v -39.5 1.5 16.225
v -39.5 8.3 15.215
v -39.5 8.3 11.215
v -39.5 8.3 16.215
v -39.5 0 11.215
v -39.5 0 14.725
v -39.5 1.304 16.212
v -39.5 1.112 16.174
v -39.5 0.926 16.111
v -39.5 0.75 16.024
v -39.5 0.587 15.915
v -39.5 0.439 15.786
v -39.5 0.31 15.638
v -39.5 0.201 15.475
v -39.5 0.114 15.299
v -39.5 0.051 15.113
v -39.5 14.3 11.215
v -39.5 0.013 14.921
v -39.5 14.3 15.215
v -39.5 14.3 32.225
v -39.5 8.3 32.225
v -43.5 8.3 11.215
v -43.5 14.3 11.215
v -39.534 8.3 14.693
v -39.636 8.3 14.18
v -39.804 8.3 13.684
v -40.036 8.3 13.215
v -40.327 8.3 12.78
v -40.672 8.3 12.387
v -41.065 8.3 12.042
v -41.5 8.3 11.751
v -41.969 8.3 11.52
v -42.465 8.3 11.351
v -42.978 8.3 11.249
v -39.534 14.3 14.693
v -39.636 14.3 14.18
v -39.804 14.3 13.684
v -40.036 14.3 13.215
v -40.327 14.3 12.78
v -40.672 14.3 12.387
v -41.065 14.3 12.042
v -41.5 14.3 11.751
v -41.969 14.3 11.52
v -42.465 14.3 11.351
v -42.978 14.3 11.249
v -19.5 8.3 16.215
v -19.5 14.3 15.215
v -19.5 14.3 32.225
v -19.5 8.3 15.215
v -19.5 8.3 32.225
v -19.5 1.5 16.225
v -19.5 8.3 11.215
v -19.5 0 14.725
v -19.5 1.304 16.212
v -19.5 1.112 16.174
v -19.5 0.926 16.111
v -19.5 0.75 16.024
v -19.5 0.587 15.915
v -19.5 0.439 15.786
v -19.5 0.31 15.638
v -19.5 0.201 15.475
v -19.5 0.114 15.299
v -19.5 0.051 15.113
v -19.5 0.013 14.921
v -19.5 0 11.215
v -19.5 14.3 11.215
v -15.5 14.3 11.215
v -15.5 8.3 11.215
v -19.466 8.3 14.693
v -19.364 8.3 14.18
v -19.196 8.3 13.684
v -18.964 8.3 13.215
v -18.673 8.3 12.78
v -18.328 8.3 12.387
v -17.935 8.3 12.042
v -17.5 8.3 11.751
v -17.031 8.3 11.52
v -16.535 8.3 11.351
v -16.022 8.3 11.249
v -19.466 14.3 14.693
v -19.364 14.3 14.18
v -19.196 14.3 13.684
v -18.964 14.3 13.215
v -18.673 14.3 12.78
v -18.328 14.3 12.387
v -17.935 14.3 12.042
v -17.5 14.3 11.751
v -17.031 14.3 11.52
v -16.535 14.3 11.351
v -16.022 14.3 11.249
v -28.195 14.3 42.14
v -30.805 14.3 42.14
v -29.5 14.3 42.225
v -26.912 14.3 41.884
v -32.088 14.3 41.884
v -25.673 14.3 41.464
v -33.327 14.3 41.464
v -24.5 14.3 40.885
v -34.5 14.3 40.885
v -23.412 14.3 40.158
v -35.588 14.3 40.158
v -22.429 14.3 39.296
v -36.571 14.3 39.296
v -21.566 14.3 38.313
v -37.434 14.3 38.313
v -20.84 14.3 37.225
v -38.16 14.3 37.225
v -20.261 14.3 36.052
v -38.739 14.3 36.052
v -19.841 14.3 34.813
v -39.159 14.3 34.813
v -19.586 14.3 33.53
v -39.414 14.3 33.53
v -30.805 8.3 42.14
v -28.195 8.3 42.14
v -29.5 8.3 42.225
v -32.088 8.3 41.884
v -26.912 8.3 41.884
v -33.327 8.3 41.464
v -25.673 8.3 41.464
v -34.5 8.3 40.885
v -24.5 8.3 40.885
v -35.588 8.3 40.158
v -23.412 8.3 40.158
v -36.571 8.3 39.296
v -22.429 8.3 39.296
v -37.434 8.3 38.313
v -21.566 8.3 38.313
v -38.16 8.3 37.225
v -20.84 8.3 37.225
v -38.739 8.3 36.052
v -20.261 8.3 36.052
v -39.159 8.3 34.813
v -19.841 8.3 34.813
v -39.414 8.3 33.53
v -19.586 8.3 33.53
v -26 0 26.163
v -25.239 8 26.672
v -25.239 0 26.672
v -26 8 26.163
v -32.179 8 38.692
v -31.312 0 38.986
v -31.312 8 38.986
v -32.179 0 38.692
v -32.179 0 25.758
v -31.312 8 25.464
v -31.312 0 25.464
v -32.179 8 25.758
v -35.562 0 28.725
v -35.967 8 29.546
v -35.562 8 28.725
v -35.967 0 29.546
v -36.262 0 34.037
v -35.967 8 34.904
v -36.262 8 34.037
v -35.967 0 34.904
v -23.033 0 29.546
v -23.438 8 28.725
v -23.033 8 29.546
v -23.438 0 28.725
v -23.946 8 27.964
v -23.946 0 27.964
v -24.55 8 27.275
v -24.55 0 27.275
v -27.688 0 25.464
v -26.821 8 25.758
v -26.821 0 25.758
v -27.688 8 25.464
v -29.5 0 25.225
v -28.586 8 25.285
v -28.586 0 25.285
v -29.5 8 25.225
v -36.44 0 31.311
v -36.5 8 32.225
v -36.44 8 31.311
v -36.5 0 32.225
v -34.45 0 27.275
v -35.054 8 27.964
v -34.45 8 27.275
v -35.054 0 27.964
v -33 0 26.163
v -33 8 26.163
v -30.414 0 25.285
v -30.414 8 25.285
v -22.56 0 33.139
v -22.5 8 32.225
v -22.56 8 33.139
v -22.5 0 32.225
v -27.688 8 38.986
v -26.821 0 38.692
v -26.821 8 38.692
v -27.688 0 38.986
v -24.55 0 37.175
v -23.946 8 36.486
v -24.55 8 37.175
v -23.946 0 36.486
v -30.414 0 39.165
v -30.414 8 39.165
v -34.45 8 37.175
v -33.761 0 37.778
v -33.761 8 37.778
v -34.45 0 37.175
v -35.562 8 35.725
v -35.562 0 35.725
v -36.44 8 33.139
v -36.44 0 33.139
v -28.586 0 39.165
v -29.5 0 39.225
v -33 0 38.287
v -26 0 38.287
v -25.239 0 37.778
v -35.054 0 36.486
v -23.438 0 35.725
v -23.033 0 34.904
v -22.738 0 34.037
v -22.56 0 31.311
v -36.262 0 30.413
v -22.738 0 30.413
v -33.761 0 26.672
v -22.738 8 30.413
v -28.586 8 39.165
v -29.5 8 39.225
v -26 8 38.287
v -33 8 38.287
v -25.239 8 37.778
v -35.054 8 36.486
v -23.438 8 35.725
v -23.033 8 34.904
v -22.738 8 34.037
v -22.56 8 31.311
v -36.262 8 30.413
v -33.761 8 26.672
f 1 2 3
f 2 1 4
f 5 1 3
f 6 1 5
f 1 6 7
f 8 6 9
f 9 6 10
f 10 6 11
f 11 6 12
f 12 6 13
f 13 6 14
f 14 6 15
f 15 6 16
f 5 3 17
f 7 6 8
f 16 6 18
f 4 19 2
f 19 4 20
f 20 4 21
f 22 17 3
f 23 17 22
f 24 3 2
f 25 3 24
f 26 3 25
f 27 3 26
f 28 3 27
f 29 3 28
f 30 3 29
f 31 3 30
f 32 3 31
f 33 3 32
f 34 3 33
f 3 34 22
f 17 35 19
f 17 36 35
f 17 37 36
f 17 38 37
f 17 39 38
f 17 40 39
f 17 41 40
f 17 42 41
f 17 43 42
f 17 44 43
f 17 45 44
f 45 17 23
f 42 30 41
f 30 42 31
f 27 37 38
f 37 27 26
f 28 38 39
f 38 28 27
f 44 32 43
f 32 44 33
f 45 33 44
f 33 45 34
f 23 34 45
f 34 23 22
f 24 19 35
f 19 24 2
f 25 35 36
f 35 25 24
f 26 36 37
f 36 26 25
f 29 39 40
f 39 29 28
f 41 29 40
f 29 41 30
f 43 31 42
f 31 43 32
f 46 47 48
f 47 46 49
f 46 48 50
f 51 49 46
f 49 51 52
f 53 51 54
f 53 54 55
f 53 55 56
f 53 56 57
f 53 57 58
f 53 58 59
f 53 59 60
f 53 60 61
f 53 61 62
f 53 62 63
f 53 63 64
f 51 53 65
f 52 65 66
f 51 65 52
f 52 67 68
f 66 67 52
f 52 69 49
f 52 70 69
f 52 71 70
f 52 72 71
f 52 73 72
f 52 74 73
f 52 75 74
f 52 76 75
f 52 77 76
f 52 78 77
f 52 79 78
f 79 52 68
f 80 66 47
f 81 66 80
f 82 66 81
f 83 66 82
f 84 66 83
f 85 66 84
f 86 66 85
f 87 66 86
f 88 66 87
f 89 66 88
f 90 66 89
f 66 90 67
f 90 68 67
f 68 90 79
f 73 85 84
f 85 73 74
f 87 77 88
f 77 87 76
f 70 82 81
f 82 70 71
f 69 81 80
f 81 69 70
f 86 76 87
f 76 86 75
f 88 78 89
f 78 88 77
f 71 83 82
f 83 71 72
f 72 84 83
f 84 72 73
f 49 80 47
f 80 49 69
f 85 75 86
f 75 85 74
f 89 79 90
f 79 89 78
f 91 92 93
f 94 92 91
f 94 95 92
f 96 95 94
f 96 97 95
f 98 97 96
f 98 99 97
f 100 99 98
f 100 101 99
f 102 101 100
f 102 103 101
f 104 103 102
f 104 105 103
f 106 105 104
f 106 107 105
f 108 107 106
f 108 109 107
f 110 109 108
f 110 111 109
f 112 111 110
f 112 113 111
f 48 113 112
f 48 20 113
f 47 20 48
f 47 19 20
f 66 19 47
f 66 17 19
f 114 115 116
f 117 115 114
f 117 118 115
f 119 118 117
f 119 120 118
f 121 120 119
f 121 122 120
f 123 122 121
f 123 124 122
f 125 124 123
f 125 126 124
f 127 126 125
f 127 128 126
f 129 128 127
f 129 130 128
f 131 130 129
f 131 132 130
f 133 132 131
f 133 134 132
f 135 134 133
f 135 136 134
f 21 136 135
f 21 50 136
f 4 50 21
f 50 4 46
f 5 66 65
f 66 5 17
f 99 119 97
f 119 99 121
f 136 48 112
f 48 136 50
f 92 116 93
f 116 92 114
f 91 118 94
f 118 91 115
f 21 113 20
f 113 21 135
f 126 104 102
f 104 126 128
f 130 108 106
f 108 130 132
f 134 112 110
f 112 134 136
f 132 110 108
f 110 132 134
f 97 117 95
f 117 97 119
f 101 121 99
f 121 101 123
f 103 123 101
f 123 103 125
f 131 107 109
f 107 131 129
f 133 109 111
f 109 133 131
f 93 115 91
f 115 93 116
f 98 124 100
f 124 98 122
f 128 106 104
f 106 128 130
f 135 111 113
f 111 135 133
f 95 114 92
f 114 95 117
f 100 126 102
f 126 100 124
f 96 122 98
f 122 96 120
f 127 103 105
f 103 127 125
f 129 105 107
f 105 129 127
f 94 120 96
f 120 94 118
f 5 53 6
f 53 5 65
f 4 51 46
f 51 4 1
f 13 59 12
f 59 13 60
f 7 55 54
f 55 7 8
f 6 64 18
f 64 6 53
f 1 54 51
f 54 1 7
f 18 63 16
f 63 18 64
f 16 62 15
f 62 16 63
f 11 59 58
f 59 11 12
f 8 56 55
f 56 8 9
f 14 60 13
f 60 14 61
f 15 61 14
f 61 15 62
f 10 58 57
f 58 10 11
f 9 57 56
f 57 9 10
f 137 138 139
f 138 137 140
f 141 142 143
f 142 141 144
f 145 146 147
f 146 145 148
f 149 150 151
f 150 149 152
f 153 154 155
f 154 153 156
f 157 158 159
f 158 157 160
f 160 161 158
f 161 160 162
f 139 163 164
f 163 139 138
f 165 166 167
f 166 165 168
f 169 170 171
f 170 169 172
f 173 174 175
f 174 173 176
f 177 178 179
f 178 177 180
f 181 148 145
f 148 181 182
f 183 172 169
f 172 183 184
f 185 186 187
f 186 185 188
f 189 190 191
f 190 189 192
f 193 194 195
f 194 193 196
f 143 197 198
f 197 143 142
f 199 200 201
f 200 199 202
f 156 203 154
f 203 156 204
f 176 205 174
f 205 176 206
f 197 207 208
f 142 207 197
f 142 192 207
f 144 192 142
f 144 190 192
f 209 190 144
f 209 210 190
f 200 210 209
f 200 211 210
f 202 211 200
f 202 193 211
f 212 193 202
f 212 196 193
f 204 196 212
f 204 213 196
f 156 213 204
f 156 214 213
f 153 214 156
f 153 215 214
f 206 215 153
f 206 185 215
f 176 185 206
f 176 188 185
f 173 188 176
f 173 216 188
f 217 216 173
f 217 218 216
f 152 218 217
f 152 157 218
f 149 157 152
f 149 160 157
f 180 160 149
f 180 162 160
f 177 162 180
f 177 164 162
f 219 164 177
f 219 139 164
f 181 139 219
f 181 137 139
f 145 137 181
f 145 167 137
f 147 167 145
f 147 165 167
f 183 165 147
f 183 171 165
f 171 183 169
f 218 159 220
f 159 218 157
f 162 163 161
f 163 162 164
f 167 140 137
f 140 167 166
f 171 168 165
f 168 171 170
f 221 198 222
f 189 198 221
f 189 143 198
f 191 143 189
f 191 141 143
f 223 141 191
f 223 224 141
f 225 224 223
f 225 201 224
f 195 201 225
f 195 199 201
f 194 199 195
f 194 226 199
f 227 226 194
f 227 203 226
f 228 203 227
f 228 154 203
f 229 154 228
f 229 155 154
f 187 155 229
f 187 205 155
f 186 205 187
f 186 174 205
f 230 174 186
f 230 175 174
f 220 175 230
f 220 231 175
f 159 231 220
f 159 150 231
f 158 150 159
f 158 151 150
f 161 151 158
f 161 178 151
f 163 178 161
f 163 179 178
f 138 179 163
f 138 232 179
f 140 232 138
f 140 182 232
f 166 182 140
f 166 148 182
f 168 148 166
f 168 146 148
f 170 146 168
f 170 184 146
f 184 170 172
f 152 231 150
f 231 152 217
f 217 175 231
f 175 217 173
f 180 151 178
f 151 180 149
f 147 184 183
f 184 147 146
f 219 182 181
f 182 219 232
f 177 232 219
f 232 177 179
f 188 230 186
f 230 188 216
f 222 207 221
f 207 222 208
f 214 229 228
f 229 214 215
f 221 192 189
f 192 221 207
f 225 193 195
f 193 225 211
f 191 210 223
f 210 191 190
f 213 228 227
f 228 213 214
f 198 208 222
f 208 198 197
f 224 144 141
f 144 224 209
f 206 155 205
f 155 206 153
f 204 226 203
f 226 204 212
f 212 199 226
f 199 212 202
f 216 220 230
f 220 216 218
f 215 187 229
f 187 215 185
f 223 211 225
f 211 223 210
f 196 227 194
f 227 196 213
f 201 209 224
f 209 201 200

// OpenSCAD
// Lab Rax generic equipment tray + faceplate (wizard template).
// Faceplate derived from the Pi4 baseline; rack holes follow the four-corner layout of the user-supplied
// 1U blank plate (faceplate_mounting.json): EVERY rack unit gets 4 holes, never a single centre pair.
// The wizard appends override assignments at the end of this file.
// PROPOSED, UNVALIDATED: printed fit, strength and rack clearance are UNKNOWN.
$fn=48;
part="assembly";            // assembly, faceplate, tray, combined, rear_bracket
// Device envelope (mm). Origin of hole coordinates = device front-left corner, seen from above.
dev_w=85; dev_d=56; dev_h=20;
feet=[];                     // [[x,y,w,d,h],...] underside feet, device frame front-left origin
holes=[];                   // [[x,y],...] mounting hole centres
hole_d=2.7;                 // device mounting hole diameter
device_mount="inserts";     // inserts, pegs, clips, straps
standoff=6;                 // device lift above tray floor
insert_pilot=3.2;           // pilot for heat-set insert (inserts mode)
board_t=1.6;                // board/flange thickness (pegs, clips)
joint="screw";              // screw, single ("snap" retired 2026-10-19: too brittle; kept as history)
u=1;                        // faceplate height in rack units
keystones=[];               // [x,...] keystone centres on faceplate (X=0 centre)
// Keystone v2 (2026-10-19, now the fallback; see ks_style): re-modelled from measurements of Brian's reference keystone frame
// (14.5 x 16 opening was too narrow when printed). Opening 14.8 x 16.6 through the plate, plus a rear collar
// 19.8 x 27.85 reaching 9.2 mm behind the front face (bottom lip to 10.4) that carries the latch ramp and catches.
ks_w=14.8; ks_h=16.6;       // front opening
ks_ow=19.8; ks_ob=11.9; ks_ot=15.95; ks_od=9.2; ks_lip=10.4;  // collar width, below/above opening centre, depth
ports=[];                   // [[x,z,w,h,r],...] faceplate cut-outs, z from slot bottom, r=corner radius
front_gap=12;               // device front to faceplate rear face
margin=8;                   // tray border around device
dev_off_x=0;                // device left/right offset, mm from centred (+ = right, seen from the front)
dev_off_y=0;                // device front/back offset, mm added to front_gap (+ = toward the rear)
dev_rot=0;                  // device rotation seen from above: 0, 90, 180, 270 (90/270 swap width and depth)
rear_support=false;         // heavy/deep equipment: tray runs to the rear posts and screws to a rear bracket
coupon=[];                  // test coupon: [x0,x1,ymax] keeps only that slice of the part

// 4 mm plate (owner default 2026-10-18). Corner radius is limited by the four-corner holes:
// the reference holes sit 1.6 mm from the top/bottom edge, so larger corners would cut into them.
rack_pitch=44.45; plate_gap=0.05; legacy_slot_offset=1.225;
plate_bottom=plate_gap/2; plate_center=u*rack_pitch/2;
plate_w=252; plate_t=4; plate_r=2.5; plate_h=u*rack_pitch-plate_gap;
hole_x=118.2625; hole_dz=15.902;   // each U: holes at its centre ±hole_dz (6.323 / 38.127 above the slot bottom)
rack_depth=240;             // Lab Rax frame depth (front of front posts to back of rear posts)
nudge=0;                    // render-repair only: tiny size offset applied when OpenSCAD 2021 emits a sliver
sleeve=device_mount=="sleeve";
// PROPOSED sleeve defaults (mm); independent design, fit and strength UNKNOWN.
sl_side=0.5; sl_top=0.3; sl_wall=6; sl_lip_w=10; sl_lip_t=1.5; sl_band=1.5; sl_stop_t=4; sl_stop_h=6;
foot_clearance=0.5; foot_extra_depth=0.3; foot_min_floor=0.8; foot_lip_t=3.0;
tray_t=3; floor_z=(device_mount=="flat"||sleeve)?0.5:7+legacy_slot_offset; tray_z=floor_z; // @flat-floor
assert(dev_rot==0||dev_rot==90||dev_rot==180||dev_rot==270,"dev_rot must be 0, 90, 180 or 270");
// Device footprint on the tray after rotation; the tray stays centred and grows to keep the margin.
fp_w=(dev_rot==90||dev_rot==270)?dev_d:dev_w; fp_d=(dev_rot==90||dev_rot==270)?dev_w:dev_d;
rack_inner_w=208; side_clear=2; max_tray=rack_inner_w-2*side_clear; // PROPOSED nominal opening / side clearance
tray_w=2*(abs(dev_off_x)+fp_w/2+(sleeve?max(margin,sl_side+sl_wall):margin)); tray_d=rear_support?rack_depth:sleeve?-plate_t+fp_d+margin:dev_off_y+fp_d+front_gap+margin;
tray_x=-tray_w/2; tray_y=0;
 // @flat-begin
assert(device_mount!="flat"||front_gap+dev_off_y>=6.2,"Flat corner stops need a front gap of at least 6.2 mm");
assert(device_mount!="flat"||joint!="screw"||front_gap+dev_off_y>=11.5,"Flat device must clear the front screw joint (front gap >= 11.5 mm)");
assert(device_mount!="flat"||!rear_support||front_gap+dev_off_y+fp_d<=rack_depth-11.5,"Flat device must clear the rear screw joint (rear gap >= 11.5 mm)");
 // @flat-end
dev_x=-fp_w/2+dev_off_x; dev_y=sleeve?-plate_t:front_gap+dev_off_y; floor_top=tray_z+tray_t;
assert(tray_w<=max_tray,str("This tray is ",tray_w," mm wide but the rack opening allows ",max_tray," mm (",rack_inner_w," mm minus ",side_clear," mm each side). Try Rotate 90 degrees, or reduce dev_off_x."));
assert(sleeve||dev_y>=0,str("Device moved into the faceplate: dev_off_y must be at least ",-front_gap));
assert(!rear_support||dev_y+fp_d+margin<=rack_depth,"Device moved past the rear posts; reduce dev_off_y");
// Device-frame point [x,y] (front-left origin, unrotated) -> footprint offset from [dev_x,dev_y].
function dp(p)=dev_rot==90?[dev_d-p[1],p[0]]:dev_rot==180?[dev_w-p[0],dev_d-p[1]]:dev_rot==270?[p[1],dev_w-p[0]]:p;
foot_h=(device_mount=="flat"||sleeve)?max([0,for(f=feet)f[4]]):0; foot_depth=foot_h>0?foot_h+foot_extra_depth:0;
sl_half=fp_w/2+sl_side; sl_bottom=floor_top; sl_window_top=sl_bottom+dev_h-foot_h+sl_top;  // case rests on the floor top; feet hang in pockets foot_extra_depth deeper
sl_lip=sl_window_top+(foot_h>0?foot_lip_t:sl_lip_t)<=u*rack_pitch?(foot_h>0?foot_lip_t:sl_lip_t):0;
sl_rear=dev_y+fp_d;
sl_joints=[dev_off_x-sl_half-sl_wall/2,dev_off_x+sl_half+sl_wall/2];
sl_joint_z=[sl_bottom+3,sl_window_top-3];
assert(!sleeve||fp_d/4-plate_t-6>=8,"Sleeve depth must be at least 72 mm to keep strap slots clear of the front joint");
assert(!sleeve||sl_bottom-plate_bottom>=sl_band&&u*rack_pitch-plate_bottom-sl_window_top>=sl_band,str("Too tall for a flush window in ",u,"U; choose ",u+1,"U"));
assert(!sleeve||!rear_support||sl_rear+sl_stop_t<=rack_depth-11.5,"Sleeve rear stop must clear rear joint by 11.5 mm");
assert(!sleeve||joint!="screw"||sl_window_top-sl_bottom>=10,"Sleeve screw joint needs a window at least 10 mm tall");
jx=min(40,tray_w/2-12); joint_x=[-jx,jx];
tongue_w=12; tongue_depth=7; tongue_h=3; tongue_z=tray_z+3.5;
slot_clear=0.3; boss_d=14; m3_clear=6.6; joint_pilot=7.6;  // HP4-M6-B: rack M6 insert bore and clearance

// @m6-begin
// M6 bracket hardware (Brian, 2026-10-28; reproduces the approved HDT-M6-A drive tray). Opt-in m6_joint: equipment.py
// switches it on (front_gap 15.5, boss 14, insert bore 7.6 = the rack posts' M6 insert holes, 6.6 clearance) and kept
// only then. Joints: inner pair + one at each tray edge (edge pair only on narrow trays); edge joints 2 screws, inner the
// upper one. Tabs: rounded-top 20 x 6 plate with the tongue-slot foot, 4 mm floor coves, 11.5 x 3.5 counterbore so the
// M6 x 8 button head sits below the rear face. PROPOSED — UNVALIDATED: fit and strength UNKNOWN.
function jzx(x)=[24];  // HP4-M6-B: one screw at Z=32.225; boss top 39.225, tab top 42.225
side_wall_t=2.5; side_wall_h=15; up_t=6; cb_d=11.5; cb_depth=3.5; tab_w=20; tab_foot_h=5; fil_r=4; floor_r=6; wall_r=6;
module m6_tray_joint_add(){
 ft=tray_z+tray_t;  // floor top
 for(x=joint_x)intersection(){
  union(){
   translate([0,8.3+up_t,0])rotate([90,0,0])linear_extrude(up_t)hull(){translate([x-tab_w/2,ft-0.01])square([tab_w,1]);translate([x,tray_z+max(jzx(x))])circle(d=tab_w);}
   hull(){translate([x-tab_w/2,0,ft-0.01])cube([tab_w,8.3+up_t,1]);translate([x-tab_w/2,8.3,ft-0.01])cube([tab_w,0.01,tab_foot_h]);
         translate([x-tab_w/2,1.5,ft+tab_foot_h-1.5])rotate([0,90,0])cylinder(r=1.5,h=tab_w);translate([x-tab_w/2,0,ft-0.01])cube([tab_w,0.01,tab_foot_h-1.5]);}
   for(sd=[-1,1])translate([x+sd*tab_w/2-(sd<0?fil_r:0),8.3,ft-0.01])difference(){cube([fil_r,up_t,fil_r]);translate([sd<0?0:fil_r,-0.1,fil_r])rotate([-90,0,0])cylinder(r=fil_r,h=up_t+0.2);}
  }
  translate([tray_x0,-1,0])cube([tray_x1-tray_x0,tray_d+2,60]);  // unchanged asymmetric floor bounds
 }
 // HP4-M6-B: edge walls omitted to preserve the keystone gap and wide cable lane.
}
module m6_tray_joint_cut(){for(x=joint_x,zz=jzx(x)){translate([x,8.3+up_t+0.1,tray_z+zz])rotate([90,0,0])cylinder(d=m3_clear,h=up_t+9);
 translate([x,8.3+up_t+0.1,tray_z+zz])rotate([90,0,0])cylinder(d=cb_d,h=cb_depth+0.1);}}
// @m6-end

module capsule2d(len=10,diam=7){hull(){translate([-(len-diam)/2,0])circle(d=diam);translate([(len-diam)/2,0])circle(d=diam);}}
module rrect(w,h,r){rr=min(r,w/2-0.01,h/2-0.01);if(rr<=0)square([w,h],center=true);else offset(r=rr)square([w-2*rr,h-2*rr],center=true);}
// Mirror front-of-tray features to the rear (about the rack's mid-depth).
module to_rear(){translate([0,rack_depth/2,0])mirror([0,1,0])translate([0,-rack_depth/2,0])children();}

// Faceplate outline seen from the front: 2D X = rack X, 2D Y = height Z.
// rear=true cuts the larger keystone pocket; plain=true leaves out keystones/ports (rear bracket).
module plate2d(rear=false,plain=false){
 difference(){
  hull()for(sx=[-1,1],sz=[-1,1])translate([sx*(plate_w/2-plate_r),plate_center+sz*(plate_h/2-plate_r)])circle(r=plate_r+nudge);
  for(i=[0:u-1],dz=[-hole_dz,hole_dz],x=[-hole_x,hole_x])translate([x,i*rack_pitch+rack_pitch/2+dz])capsule2d();
  if(!plain){
   if(sleeve)translate([dev_off_x,(sl_bottom+sl_window_top)/2])square([2*sl_half,sl_window_top-sl_bottom],center=true);
   for(p=ports)translate([p[0],p[1]])rrect(p[2],p[3],p[4]);
  }
 }
}
// Plate between y=y0 (front) and y0+t, built from the 2D outline (cleaner meshes than 3D cuts in OpenSCAD 2021).
module plate_layer(y0,t,rear=false,plain=false){translate([0,y0+t,0])rotate([90,0,0])linear_extrude(height=t)plate2d(rear,plain);}

module plate_joint_add(rear=false){
 if(joint=="screw"&&(!sleeve||rear)){
  for(x=joint_x)translate([x-tongue_w/2,0,tongue_z])cube([tongue_w,tongue_depth,tongue_h]);
  for(x=joint_x,zz=jzx(x))translate([x,0,tray_z+zz])rotate([-90,0,0])cylinder(d=boss_d,h=8);
 }
 if(joint=="snap") for(x=joint_x){
  // Cantilever arm under the tray floor; barb snaps up into a floor window.
  translate([x-4,0,tray_z-2])cube([8,16,2]);
  // Barb v2: square catch face toward the plate, ramp falling toward the rear so the tray, slid in
  // from the rear, cams the arm down until its window drops over the barb.
  translate([x-4,12,tray_z])hull(){cube([8,0.6,1.2]);cube([8,2.4,0.01]);}
 }
}
// Keystone collar behind the plate, and the jack-shaped cut through plate + collar.
// Profile in (d = depth behind front face, z from opening centre); X width is ks_w throughout.
module ks_collar(){for(x=keystones)translate([x-ks_ow/2,-plate_t,plate_center]){
 translate([0,0,-ks_ob])cube([ks_ow,ks_od,ks_ob+ks_ot]);
 translate([0,0,-ks_ob])cube([ks_ow,ks_lip,ks_ob-ks_h/2]);
}}
module ks_cut(){for(x=keystones)translate([x-ks_w/2,-plate_t,plate_center])rotate([90,0,90])linear_extrude(height=ks_w)
 polygon([[-1,-ks_h/2],[5.8,-ks_h/2],[5.8,-9.9],[9.2,-9.9],[9.2,-ks_h/2],[11,-ks_h/2],[11,11.6],[8.2,11.6],
          [8.2,ks_ot+1],[7.2,ks_ot+1],[7.2,13.6],[0.6,ks_h/2],[-1,ks_h/2]]);}
// Golden keystone (Brian, 2026-10-19): exact cross-sections of the keystone on Brian's SG108 faceplate, which fits
// perfectly in practice. Source: "10 inch shelf TP-Link SG108 Plus Keystone" by Goul (MakerWorld remix, BY-NC-SA),
// local/personal use only, never redistributed. Each band: [X from opening centre, width, polygons in source (Y, Z)]
// with source Y running down the plate (opening centre Y=25.09) and Z = depth (keystone face 0, plate back 4.08).
// The block replaces the plate within 21 x 33.5 mm around each keystone; front face sits 0.08 proud like the source.
ks_style="golden";          // golden (SG108 copy) or v2 (own measured rebuild, kept as fallback)
// Brian, 2026-10-19: the golden v3 print fit left/right well but had ~0.4 mm play up/down. ks_tight moves the
// bottom (hook-side) edge of the opening, its hook groove and lip up by this much; the latch side is unchanged.
ks_tight=0.2;  // Brian, 2026-10-19: v5 coupon (0.2) printed a perfect fit; v4 (0.4) was too tight.
KS_GOLD=[
  [-10.50,0.60,[[[45.500,4.080],[45.500,0.080],[38.691,0.080],[38.691,0.000],[7.251,0.000],[7.251,0.080],[1.000,0.080],[1.000,4.080],[1.071,4.080]]]],
  [-9.90,0.98,[[[9.143,4.080],[9.143,6.600],[9.205,7.147],[9.207,7.160],[9.226,7.216],[9.395,7.692],[9.679,8.145],[9.697,8.169],[10.075,8.546],[10.099,8.565],[10.551,8.848],[11.083,9.036],[11.643,9.100],[13.493,9.100],[14.293,9.900],[33.393,9.900],[33.893,10.400],[34.493,10.400],[35.054,10.336],[35.586,10.148],[36.038,9.865],[36.062,9.846],[36.439,9.469],[36.458,9.445],[36.742,8.992],[36.753,8.965],[36.930,8.460],[36.993,7.900],[36.993,4.080],[45.500,4.080],[45.500,0.080],[38.691,0.080],[38.691,0.000],[7.251,0.000],[7.251,0.080],[1.000,0.080],[1.000,4.080],[1.014,4.080]]]],
  [-8.92,1.52,[[[7.551,4.080],[7.551,2.250],[9.143,2.250],[9.143,6.600],[9.209,7.169],[9.367,7.620],[9.404,7.709],[9.658,8.114],[9.716,8.190],[9.755,8.229],[10.054,8.527],[10.130,8.586],[10.534,8.840],[10.623,8.876],[11.074,9.034],[11.643,9.100],[13.493,9.100],[14.293,9.900],[33.393,9.900],[33.893,10.400],[34.493,10.400],[35.063,10.334],[35.514,10.176],[35.603,10.140],[36.006,9.886],[36.083,9.827],[36.420,9.490],[36.479,9.414],[36.719,9.030],[36.737,9.000],[36.770,8.920],[36.927,8.469],[36.993,7.900],[36.993,2.250],[38.551,2.250],[38.551,4.080],[45.500,4.080],[45.500,0.080],[38.691,0.080],[38.691,0.000],[7.251,0.000],[7.251,0.080],[1.000,0.080],[1.000,4.080],[1.044,4.080]]]],
  [-7.40,14.80,[[[7.551,4.080],[7.551,2.250],[9.143,2.250],[9.143,6.600],[9.175,6.878],[9.229,7.247],[9.478,7.850],[9.876,8.368],[10.393,8.765],[10.996,9.015],[11.365,9.069],[11.643,9.100],[13.493,9.100],[13.493,8.100],[11.493,8.100],[11.493,7.200],[16.793,0.500],[16.793,0.000],[7.251,0.000],[7.251,0.080],[1.000,0.080],[1.000,4.080],[1.025,4.080]],[[45.500,4.080],[45.500,0.080],[38.691,0.080],[38.691,0.000],[33.393,0.000],[33.393,5.800],[34.993,5.800],[34.993,8.400],[33.393,8.400],[33.393,9.900],[33.893,10.400],[34.493,10.400],[34.771,10.369],[35.140,10.315],[35.743,10.065],[36.200,9.715],[36.261,9.668],[36.658,9.150],[36.908,8.547],[36.962,8.178],[36.993,7.900],[36.993,2.250],[38.551,2.250],[38.551,4.080],[42.555,4.080]]]],
  [7.40,2.50,[[[45.500,4.080],[45.500,0.080],[38.691,0.080],[38.691,0.000],[7.251,0.000],[7.251,0.080],[1.000,0.080],[1.000,4.080],[7.551,4.080],[7.551,2.250],[9.143,2.250],[9.143,6.600],[9.209,7.168],[9.370,7.630],[9.402,7.705],[9.662,8.120],[9.712,8.185],[9.927,8.400],[10.059,8.531],[10.124,8.582],[10.538,8.841],[10.614,8.873],[11.075,9.034],[11.643,9.100],[13.493,9.100],[14.293,9.900],[33.393,9.900],[33.893,10.400],[34.493,10.400],[35.062,10.335],[35.523,10.172],[35.599,10.141],[36.013,9.882],[36.078,9.831],[36.425,9.486],[36.474,9.420],[36.735,9.005],[36.767,8.930],[36.928,8.467],[36.993,7.900],[36.993,2.250],[38.551,2.250],[38.551,4.080],[42.599,4.080]]]],
  [9.90,0.60,[[[45.500,4.080],[45.500,0.080],[38.691,0.080],[38.691,0.000],[7.251,0.000],[7.251,0.080],[1.000,0.080],[1.000,4.080],[7.551,4.080],[7.551,2.250],[38.551,2.250],[38.551,4.080],[42.635,4.080]]]]
];
// Depths are shifted by -0.08 before polygon() and the 0.08 is added back in the 3D transform: OpenSCAD 2021 snaps 2D
// points to a 1/65536 mm grid, which put the plate-flush faces (Z 0.08 / 4.08) 0.0000134 mm off the plate and left a
// non-manifold sliver edge. Shifted, those faces sit at exactly 0 and 4.0 (on the grid); the shape is unchanged.
// The block is cut 0.1 mm oversize in height, then clipped in rack coordinates by the same box as ks_box_cut, so its
// top/bottom faces are the very same numbers as the plate opening (the transform alone landed them a hair off).
module ks_golden(){for(x=keystones)intersection(){
 translate([x,0,plate_center])multmatrix([[1,0,0,0],[0,0,1,-4],[0,-1,0,25.09],[0,0,0,1]])intersection(){
  union()for(b=KS_GOLD)translate([b[0],0,0])rotate([90,0,90])linear_extrude(height=b[1])for(pg=b[2])
   translate([b[1]>10&&min([for(q=pg)q[0]])>30?-ks_tight:0,0])polygon([for(q=pg)[q[0],q[1]-0.08]]);  // opening band, hook side
  translate([-10.5,25.09-18.6,-0.09])cube([21,33.7,10.42]);
 }
 translate([x-10.5,-plate_t-1,plate_center-15])cube([21,plate_t+16,33.5]);
}}
module ks_box_cut(){for(x=keystones)translate([x-10.5,-plate_t-0.01,plate_center-15])cube([21,plate_t+0.02,33.5]);}
module plate_joint_cut(rear=false){if(joint=="screw"&&(!sleeve||rear))for(x=joint_x,zz=jzx(x))translate([x,-0.1,tray_z+zz])rotate([-90,0,0])cylinder(d=joint_pilot,h=8.2);}

module faceplate(){
 union(){
  difference(){
   union(){
    plate_layer(-plate_t,plate_t);
    if(ks_style=="v2")ks_collar();
    plate_joint_add();
   }
   plate_joint_cut();
   hp4_plate_id();
   if(sleeve&&joint=="screw")for(x=sl_joints,z=sl_joint_z)translate([x,-plate_t-0.1,z])rotate([-90,0,0])cylinder(d=m3_clear,h=plate_t+0.2);
   if(ks_style=="v2")ks_cut(); else ks_box_cut();
  }
  if(ks_style!="v2")ks_golden();
 }
}
// Plain plate on the rear posts (mirror of the faceplate, no openings) that the tray's rear end screws/snaps to.
module rear_bracket(){to_rear()difference(){union(){plate_layer(-plate_t,plate_t,false,true);plate_joint_add(true);}plate_joint_cut(true);}}

module device_features_add(){
 if(sleeve){
  for(side=[-1,1]){
   x=side<0?dev_off_x-sl_half-sl_wall:dev_off_x+sl_half;
   translate([x,0,floor_top])cube([sl_wall,sl_rear,sl_window_top-floor_top]);
   if(sl_lip>0)translate([side<0?x:dev_off_x+sl_half-min(sl_lip_w,sl_half),0,sl_window_top])cube([sl_wall+min(sl_lip_w,sl_half),sl_rear,sl_lip]);
  }
  translate([dev_x,sl_rear,floor_top])cube([fp_w,sl_stop_t,min(sl_stop_h,dev_h-foot_h)]);
 }

 // @flat-begin
 if(device_mount=="flat"){
  // Corner stops outside the footprint, with 0.2 mm nominal clearance. Retention UNKNOWN.
  for(x=[dev_x-6.2,dev_x+fp_w+0.2],y=[dev_y,dev_y+fp_d-min(6,fp_d)])
   translate([x,y,floor_top])cube([6,min(6,fp_d),min(6,dev_h-foot_h)]);
  for(x=[dev_x,dev_x+fp_w-min(6,fp_w)],y=[dev_y-6.2,dev_y+fp_d+0.2])
   translate([x,y,floor_top])cube([min(6,fp_w),6,min(6,dev_h-foot_h)]);
 }
 // @flat-end
 if(device_mount=="inserts")for(h=[for(q=holes)dp(q)])translate([dev_x+h[0],dev_y+h[1],floor_top])cylinder(d=max(insert_pilot+3.5,7),h=standoff);
 if(device_mount=="pegs")for(h=[for(q=holes)dp(q)])translate([dev_x+h[0],dev_y+h[1],floor_top]){
  cylinder(d=hole_d+3,h=standoff);
  translate([0,0,standoff])cylinder(d=hole_d-0.3,h=board_t+0.8);
  translate([0,0,standoff+board_t+0.8])cylinder(d1=hole_d-0.3,d2=hole_d-1,h=0.8);
 }
 if(device_mount=="clips"){
  // Support ledges at the four corners plus a flexing clip on each side.
  for(x=[dev_x-1,dev_x+fp_w-5],y=[dev_y-1,dev_y+fp_d-5])translate([x,y,floor_top])cube([6,6,standoff]);
  for(s=[-1,1])translate([s>0?dev_x+fp_w+0.2:dev_x-2.2,dev_y+fp_d/2-5,floor_top]){
   cube([2,10,standoff+board_t+2.5]);
   translate([s>0?-1.2:2,0,standoff+board_t+0.2])hull(){cube([1.2,10,1.6]);translate([s>0?1.2:0,0,1.6])cube([0.01,10,0.6]);}
  }
 }
}
module device_features_cut(){
 if(sleeve&&joint=="screw")for(x=sl_joints,z=sl_joint_z)translate([x,-0.1,z])rotate([-90,0,0])cylinder(d=joint_pilot,h=8.1);
 // Strap access through each wall at quarter-depth, clear of the front/rear joints.
 if(sleeve)for(side=[-1,1],y=[dev_y+fp_d*0.25,dev_y+fp_d*0.75])
  translate([side<0?dev_off_x-sl_half-sl_wall-0.1:dev_off_x+sl_half-0.1,y-6,floor_top-0.1])cube([sl_wall+0.2,12,3.1]);

 if(device_mount=="inserts")for(h=[for(q=holes)dp(q)])translate([dev_x+h[0],dev_y+h[1],floor_top+0.01])cylinder(d=insert_pilot,h=standoff+0.1);
 if(device_mount=="flat"||sleeve)for(x=[dev_x-5.5,dev_x+fp_w+2.5],y=[dev_y+fp_d*0.25,dev_y+fp_d*0.75])
  translate([x,y-6,tray_z-0.1])cube([3,12,tray_t+0.2]);
 // Blind pockets retain at least foot_min_floor; taller feet pass through the floor by design.
 if(foot_h>0&&(device_mount=="flat"||sleeve))for(f=feet){corners=[dp([f[0],f[1]]),dp([f[0]+f[2],f[1]]),dp([f[0],f[1]+f[3]]),dp([f[0]+f[2],f[1]+f[3]])];x0=dev_x+min([for(p=corners)p[0]])-foot_clearance;x1=dev_x+max([for(p=corners)p[0]])+foot_clearance;y0=dev_y+min([for(p=corners)p[1]])-foot_clearance;y1=dev_y+max([for(p=corners)p[1]])+foot_clearance;deep=f[4]+foot_extra_depth;
  translate([x0,y0,deep>tray_t-foot_min_floor?tray_z-0.1:floor_top-deep])cube([x1-x0,y1-y0,deep>tray_t-foot_min_floor?tray_t+0.2:deep+0.02]);}
}

module tray_joint_add(rear=false){
 if(joint=="screw"&&(!sleeve||rear)){
  m6_tray_joint_add();
 }
}
module tray_joint_cut(rear=false){
 if(joint=="screw"&&(!sleeve||rear)){
  for(x=joint_x)translate([x-(tongue_w+slot_clear)/2,-0.1,tongue_z-slot_clear/2])cube([tongue_w+slot_clear,tongue_depth+slot_clear,tongue_h+slot_clear]);
  m6_tray_joint_cut();
 }
 if(joint=="snap")for(x=joint_x)translate([x-4.3,11.6,tray_z-0.1])cube([8.6,3.2,tray_t+0.2]);
}

module tray(){
 difference(){
  union(){
   translate([tray_x0,tray_y,tray_z])cube([tray_x1-tray_x0,tray_d,tray_t]);  // hand-set: keystone lane on the left, Pi edge at the right limit
   cradle();
   tray_joint_add();
   if(rear_support)to_rear()tray_joint_add(true);
   device_features_add();device2_features_add();
  }
  tray_joint_cut();
  if(rear_support)to_rear()tray_joint_cut(true);
  device_features_cut();device2_features_cut();
  lane_tie_cut();
  hp4_tray_id();
 }
}

module clip_coupon(){if(len(coupon)==3)intersection(){children();translate([coupon[0],-50,-50])cube([coupon[1]-coupon[0],coupon[2]+50,400]);}else children();}

if(false)clip_coupon(){
 if(part=="faceplate")faceplate();
 else if(part=="tray")tray();
 else if(part=="rear_bracket")rear_bracket();
 else if(part=="combined")union(){faceplate();translate([tray_x,-0.01,tray_z])cube([tray_w,0.02+0.01,tray_t]);tray();if(rear_support)rear_bracket();}
 else {color("steelblue")faceplate();color("silver")tray();if(rear_support)color("steelblue")rear_bracket();
  %translate([dev_x,dev_y,floor_top+(device_mount=="inserts"||device_mount=="pegs"||device_mount=="clips"?standoff:0)-foot_h])cube([fp_w,fp_d,dev_h]);device2_ghost();}
}

// ---- Second device on this tray (Brian, 2026-10-20). PROPOSED; fit, retention and strength UNKNOWN.
// Declared here so the derived values below see them; the wizard overrides at the end replace them in place.
dev2_w=1; dev2_d=1; dev2_h=1; dev2_hole_d=2.7; dev2_standoff=6; dev2_insert_pilot=3.2; dev2_board_t=1.6; dev2_holes=[]; dev2_mount="inserts"; dev2_off_x=0; dev2_off_y=0; dev2_rot=0; dev2_feet=[];
fp2_w=(dev2_rot==90||dev2_rot==270)?dev2_d:dev2_w; fp2_d=(dev2_rot==90||dev2_rot==270)?dev2_w:dev2_d;
dev2_x=-fp2_w/2+dev2_off_x; dev2_y=front_gap+dev2_off_y;
dev2_foot_h=dev2_mount=="flat"?max([0,for(f=dev2_feet)f[4]]):0;
module device2_ghost(){%translate([dev2_x,dev2_y,floor_top+(dev2_mount=="inserts"||dev2_mount=="pegs"||dev2_mount=="clips"?dev2_standoff:0)-dev2_foot_h])cube([fp2_w,fp2_d,dev2_h]);}
function dp2(p)=dev2_rot==90?[dev2_d-p[1],p[0]]:dev2_rot==180?[dev2_w-p[0],dev2_d-p[1]]:dev2_rot==270?[p[1],dev2_w-p[0]]:p;
module device2_features_add(){
 if(sleeve){
  for(side=[-1,1]){
   x=side<0?dev2_off_x-sl_half-sl_wall:dev2_off_x+sl_half;
   translate([x,0,floor_top])cube([sl_wall,sl_rear,sl_window_top-floor_top]);
   if(sl_lip>0)translate([side<0?x:dev2_off_x+sl_half-min(sl_lip_w,sl_half),0,sl_window_top])cube([sl_wall+min(sl_lip_w,sl_half),sl_rear,sl_lip]);
  }
  translate([dev2_x,sl_rear,floor_top])cube([fp2_w,sl_stop_t,min(sl_stop_h,dev2_h-dev2_foot_h)]);
 }

 // @flat-begin
 if(dev2_mount=="flat"){
  // Corner stops outside the footprint, with 0.2 mm nominal clearance. Retention UNKNOWN.
  for(x=[dev2_x-6.2,dev2_x+fp2_w+0.2],y=[dev2_y,dev2_y+fp2_d-min(6,fp2_d)])
   translate([x,y,floor_top])cube([6,min(6,fp2_d),min(6,dev2_h-dev2_foot_h)]);
  for(x=[dev2_x,dev2_x+fp2_w-min(6,fp2_w)],y=[dev2_y-6.2,dev2_y+fp2_d+0.2])
   translate([x,y,floor_top])cube([min(6,fp2_w),6,min(6,dev2_h-dev2_foot_h)]);
 }
 // @flat-end
 if(dev2_mount=="inserts")for(h=[for(q=dev2_holes)dp2(q)])translate([dev2_x+h[0],dev2_y+h[1],floor_top])cylinder(d=max(dev2_insert_pilot+3.5,7),h=dev2_standoff);
 if(dev2_mount=="pegs")for(h=[for(q=dev2_holes)dp2(q)])translate([dev2_x+h[0],dev2_y+h[1],floor_top]){
  cylinder(d=dev2_hole_d+3,h=dev2_standoff);
  translate([0,0,dev2_standoff])cylinder(d=dev2_hole_d-0.3,h=dev2_board_t+0.8);
  translate([0,0,dev2_standoff+dev2_board_t+0.8])cylinder(d1=dev2_hole_d-0.3,d2=dev2_hole_d-1,h=0.8);
 }
 if(dev2_mount=="clips"){
  // Support ledges at the four corners plus a flexing clip on each side.
  for(x=[dev2_x-1,dev2_x+fp2_w-5],y=[dev2_y-1,dev2_y+fp2_d-5])translate([x,y,floor_top])cube([6,6,dev2_standoff]);
  for(s=[-1,1])translate([s>0?dev2_x+fp2_w+0.2:dev2_x-2.2,dev2_y+fp2_d/2-5,floor_top]){
   cube([2,10,dev2_standoff+dev2_board_t+2.5]);
   translate([s>0?-1.2:2,0,dev2_standoff+dev2_board_t+0.2])hull(){cube([1.2,10,1.6]);translate([s>0?1.2:0,0,1.6])cube([0.01,10,0.6]);}
  }
 }
}
module device2_features_cut(){
 if(sleeve&&joint=="screw")for(x=sl_joints,z=sl_joint_z)translate([x,-0.1,z])rotate([-90,0,0])cylinder(d=joint_pilot,h=8.1);
 // Strap access through each wall at quarter-depth, clear of the front/rear joints.
 if(sleeve)for(side=[-1,1],y=[dev2_y+fp2_d*0.25,dev2_y+fp2_d*0.75])
  translate([side<0?dev2_off_x-sl_half-sl_wall-0.1:dev2_off_x+sl_half-0.1,y-6,floor_top-0.1])cube([sl_wall+0.2,12,3.1]);

 if(dev2_mount=="inserts")for(h=[for(q=dev2_holes)dp2(q)])translate([dev2_x+h[0],dev2_y+h[1],floor_top+0.01])cylinder(d=dev2_insert_pilot,h=dev2_standoff+0.1);
 if(dev2_mount=="straps"||dev2_mount=="flat"||sleeve)for(x=[dev2_x-5.5,dev2_x+fp2_w+2.5],y=[dev2_y+fp2_d*0.25,dev2_y+fp2_d*0.75])
  translate([x,y-6,tray_z-0.1])cube([3,12,tray_t+0.2]);
 // Blind pockets retain at least foot_min_floor; taller dev2_feet pass through the floor by design.
 if(dev2_foot_h>0&&(dev2_mount=="flat"||sleeve))for(f=dev2_feet){corners=[dp2([f[0],f[1]]),dp2([f[0]+f[2],f[1]]),dp2([f[0],f[1]+f[3]]),dp2([f[0]+f[2],f[1]+f[3]])];x0=dev2_x+min([for(p=corners)p[0]])-foot_clearance;x1=dev2_x+max([for(p=corners)p[0]])+foot_clearance;y0=dev2_y+min([for(p=corners)p[1]])-foot_clearance;y1=dev2_y+max([for(p=corners)p[1]])+foot_clearance;deep=f[4]+foot_extra_depth;
  translate([x0,y0,deep>tray_t-foot_min_floor?tray_z-0.1:floor_top-deep])cube([x1-x0,y1-y0,deep>tray_t-foot_min_floor?tray_t+0.2:deep+0.02]);}
}


// ---- Wide-lane layout (2026-10-24, hand-set; PROPOSED, fit/strength/cable bend room UNKNOWN).
// Everything behind the plate stays inside the +-104 rack opening: keystone block 82..103, tray floor -102..+82.5; keystone lane right, Pi edge at the left limit.
// Hue: Brian's cradle corner posts (Swanky Rottis.stl, read in place from Downloads, never copied; base plate cut off).
tray_x0=-102; tray_x1=82.5;
cradle_x=34.5; cradle_y=70.2; cradle_cut=3; cradle_z=floor_top-cradle_cut-0.045;
module cradle(){translate([cradle_x,cradle_y,cradle_z])intersection(){import("C:/Users/brian/Downloads/Swanky Rottis.stl",convexity=6);
 translate([-50,-50,cradle_cut])cube([100,100,40]);}}
// Two 3 x 12 mm cable-tie slots across the cable lane, behind the Pi (cables gather there on the way out the rear).
module lane_tie_cut(){for(x=[-42.5,-19.5])translate([x,96,tray_z-0.1])cube([3,12,tray_t+0.2]);}

// ---- wizard overrides: Philips Hue Bridge v2
dev_w=90.7;
dev_d=90.4;
dev_h=30.7;
hole_d=2.7;
standoff=6.0;
insert_pilot=3.2;
board_t=1.6;
u=1;
holes=[];
keystones=[92.5];
device_mount="straps";
joint="screw";
rear_support=false;
coupon=[];
dev_off_x=34.5;  // Hue ghost centred in the cradle (no tray geometry depends on it)
dev_off_y=13.0;
joint_x=[-40.0, 18.0];
ports=[[-93.0, 26.8, 15.0, 17.5, 1.0], [-75.0, 26.8, 15.0, 17.5, 1.0], [-56.3, 25.6, 17.5, 15.0, 1.0]];  // ~0.75 mm round the Pi sockets, centred on them (Brian, 2026-10-24); USB cable slot removed
dev2_w=85.0;
dev2_d=56.0;
dev2_h=20.0;
dev2_hole_d=2.7;
dev2_standoff=6.0;
dev2_insert_pilot=3.2;
dev2_board_t=1.6;
dev2_holes=[[3.5, 3.5], [61.5, 3.5], [3.5, 52.5], [61.5, 52.5]];
dev2_mount="inserts";
dev2_off_x=53.5;
dev2_off_y=-12.0;
dev2_rot=270;
dev2_feet=[];
tray_w=184.5;
tray_d=123.4;
joint_x=[-29.5, 11.0, 57.0];
dev2_off_x=-74;  // Pi footprint X -102..-46

// HP4-M6-B identification only: 0.6 mm engraved, away from functional features.
module hp4_plate_id(){translate([34.5,0.01,8])rotate([90,0,0])linear_extrude(0.61)
 text("HP4-M6-B",size=4,font="Liberation Sans:style=Bold",halign="center");}
module hp4_tray_id(){translate([34.5,119,floor_top-0.6])linear_extrude(0.61)
 text("HP4-M6-B",size=4,font="Liberation Sans:style=Bold",halign="center");}

joint_x=[-29.5];union(){m6_tray_joint_add();plate_joint_add();}
